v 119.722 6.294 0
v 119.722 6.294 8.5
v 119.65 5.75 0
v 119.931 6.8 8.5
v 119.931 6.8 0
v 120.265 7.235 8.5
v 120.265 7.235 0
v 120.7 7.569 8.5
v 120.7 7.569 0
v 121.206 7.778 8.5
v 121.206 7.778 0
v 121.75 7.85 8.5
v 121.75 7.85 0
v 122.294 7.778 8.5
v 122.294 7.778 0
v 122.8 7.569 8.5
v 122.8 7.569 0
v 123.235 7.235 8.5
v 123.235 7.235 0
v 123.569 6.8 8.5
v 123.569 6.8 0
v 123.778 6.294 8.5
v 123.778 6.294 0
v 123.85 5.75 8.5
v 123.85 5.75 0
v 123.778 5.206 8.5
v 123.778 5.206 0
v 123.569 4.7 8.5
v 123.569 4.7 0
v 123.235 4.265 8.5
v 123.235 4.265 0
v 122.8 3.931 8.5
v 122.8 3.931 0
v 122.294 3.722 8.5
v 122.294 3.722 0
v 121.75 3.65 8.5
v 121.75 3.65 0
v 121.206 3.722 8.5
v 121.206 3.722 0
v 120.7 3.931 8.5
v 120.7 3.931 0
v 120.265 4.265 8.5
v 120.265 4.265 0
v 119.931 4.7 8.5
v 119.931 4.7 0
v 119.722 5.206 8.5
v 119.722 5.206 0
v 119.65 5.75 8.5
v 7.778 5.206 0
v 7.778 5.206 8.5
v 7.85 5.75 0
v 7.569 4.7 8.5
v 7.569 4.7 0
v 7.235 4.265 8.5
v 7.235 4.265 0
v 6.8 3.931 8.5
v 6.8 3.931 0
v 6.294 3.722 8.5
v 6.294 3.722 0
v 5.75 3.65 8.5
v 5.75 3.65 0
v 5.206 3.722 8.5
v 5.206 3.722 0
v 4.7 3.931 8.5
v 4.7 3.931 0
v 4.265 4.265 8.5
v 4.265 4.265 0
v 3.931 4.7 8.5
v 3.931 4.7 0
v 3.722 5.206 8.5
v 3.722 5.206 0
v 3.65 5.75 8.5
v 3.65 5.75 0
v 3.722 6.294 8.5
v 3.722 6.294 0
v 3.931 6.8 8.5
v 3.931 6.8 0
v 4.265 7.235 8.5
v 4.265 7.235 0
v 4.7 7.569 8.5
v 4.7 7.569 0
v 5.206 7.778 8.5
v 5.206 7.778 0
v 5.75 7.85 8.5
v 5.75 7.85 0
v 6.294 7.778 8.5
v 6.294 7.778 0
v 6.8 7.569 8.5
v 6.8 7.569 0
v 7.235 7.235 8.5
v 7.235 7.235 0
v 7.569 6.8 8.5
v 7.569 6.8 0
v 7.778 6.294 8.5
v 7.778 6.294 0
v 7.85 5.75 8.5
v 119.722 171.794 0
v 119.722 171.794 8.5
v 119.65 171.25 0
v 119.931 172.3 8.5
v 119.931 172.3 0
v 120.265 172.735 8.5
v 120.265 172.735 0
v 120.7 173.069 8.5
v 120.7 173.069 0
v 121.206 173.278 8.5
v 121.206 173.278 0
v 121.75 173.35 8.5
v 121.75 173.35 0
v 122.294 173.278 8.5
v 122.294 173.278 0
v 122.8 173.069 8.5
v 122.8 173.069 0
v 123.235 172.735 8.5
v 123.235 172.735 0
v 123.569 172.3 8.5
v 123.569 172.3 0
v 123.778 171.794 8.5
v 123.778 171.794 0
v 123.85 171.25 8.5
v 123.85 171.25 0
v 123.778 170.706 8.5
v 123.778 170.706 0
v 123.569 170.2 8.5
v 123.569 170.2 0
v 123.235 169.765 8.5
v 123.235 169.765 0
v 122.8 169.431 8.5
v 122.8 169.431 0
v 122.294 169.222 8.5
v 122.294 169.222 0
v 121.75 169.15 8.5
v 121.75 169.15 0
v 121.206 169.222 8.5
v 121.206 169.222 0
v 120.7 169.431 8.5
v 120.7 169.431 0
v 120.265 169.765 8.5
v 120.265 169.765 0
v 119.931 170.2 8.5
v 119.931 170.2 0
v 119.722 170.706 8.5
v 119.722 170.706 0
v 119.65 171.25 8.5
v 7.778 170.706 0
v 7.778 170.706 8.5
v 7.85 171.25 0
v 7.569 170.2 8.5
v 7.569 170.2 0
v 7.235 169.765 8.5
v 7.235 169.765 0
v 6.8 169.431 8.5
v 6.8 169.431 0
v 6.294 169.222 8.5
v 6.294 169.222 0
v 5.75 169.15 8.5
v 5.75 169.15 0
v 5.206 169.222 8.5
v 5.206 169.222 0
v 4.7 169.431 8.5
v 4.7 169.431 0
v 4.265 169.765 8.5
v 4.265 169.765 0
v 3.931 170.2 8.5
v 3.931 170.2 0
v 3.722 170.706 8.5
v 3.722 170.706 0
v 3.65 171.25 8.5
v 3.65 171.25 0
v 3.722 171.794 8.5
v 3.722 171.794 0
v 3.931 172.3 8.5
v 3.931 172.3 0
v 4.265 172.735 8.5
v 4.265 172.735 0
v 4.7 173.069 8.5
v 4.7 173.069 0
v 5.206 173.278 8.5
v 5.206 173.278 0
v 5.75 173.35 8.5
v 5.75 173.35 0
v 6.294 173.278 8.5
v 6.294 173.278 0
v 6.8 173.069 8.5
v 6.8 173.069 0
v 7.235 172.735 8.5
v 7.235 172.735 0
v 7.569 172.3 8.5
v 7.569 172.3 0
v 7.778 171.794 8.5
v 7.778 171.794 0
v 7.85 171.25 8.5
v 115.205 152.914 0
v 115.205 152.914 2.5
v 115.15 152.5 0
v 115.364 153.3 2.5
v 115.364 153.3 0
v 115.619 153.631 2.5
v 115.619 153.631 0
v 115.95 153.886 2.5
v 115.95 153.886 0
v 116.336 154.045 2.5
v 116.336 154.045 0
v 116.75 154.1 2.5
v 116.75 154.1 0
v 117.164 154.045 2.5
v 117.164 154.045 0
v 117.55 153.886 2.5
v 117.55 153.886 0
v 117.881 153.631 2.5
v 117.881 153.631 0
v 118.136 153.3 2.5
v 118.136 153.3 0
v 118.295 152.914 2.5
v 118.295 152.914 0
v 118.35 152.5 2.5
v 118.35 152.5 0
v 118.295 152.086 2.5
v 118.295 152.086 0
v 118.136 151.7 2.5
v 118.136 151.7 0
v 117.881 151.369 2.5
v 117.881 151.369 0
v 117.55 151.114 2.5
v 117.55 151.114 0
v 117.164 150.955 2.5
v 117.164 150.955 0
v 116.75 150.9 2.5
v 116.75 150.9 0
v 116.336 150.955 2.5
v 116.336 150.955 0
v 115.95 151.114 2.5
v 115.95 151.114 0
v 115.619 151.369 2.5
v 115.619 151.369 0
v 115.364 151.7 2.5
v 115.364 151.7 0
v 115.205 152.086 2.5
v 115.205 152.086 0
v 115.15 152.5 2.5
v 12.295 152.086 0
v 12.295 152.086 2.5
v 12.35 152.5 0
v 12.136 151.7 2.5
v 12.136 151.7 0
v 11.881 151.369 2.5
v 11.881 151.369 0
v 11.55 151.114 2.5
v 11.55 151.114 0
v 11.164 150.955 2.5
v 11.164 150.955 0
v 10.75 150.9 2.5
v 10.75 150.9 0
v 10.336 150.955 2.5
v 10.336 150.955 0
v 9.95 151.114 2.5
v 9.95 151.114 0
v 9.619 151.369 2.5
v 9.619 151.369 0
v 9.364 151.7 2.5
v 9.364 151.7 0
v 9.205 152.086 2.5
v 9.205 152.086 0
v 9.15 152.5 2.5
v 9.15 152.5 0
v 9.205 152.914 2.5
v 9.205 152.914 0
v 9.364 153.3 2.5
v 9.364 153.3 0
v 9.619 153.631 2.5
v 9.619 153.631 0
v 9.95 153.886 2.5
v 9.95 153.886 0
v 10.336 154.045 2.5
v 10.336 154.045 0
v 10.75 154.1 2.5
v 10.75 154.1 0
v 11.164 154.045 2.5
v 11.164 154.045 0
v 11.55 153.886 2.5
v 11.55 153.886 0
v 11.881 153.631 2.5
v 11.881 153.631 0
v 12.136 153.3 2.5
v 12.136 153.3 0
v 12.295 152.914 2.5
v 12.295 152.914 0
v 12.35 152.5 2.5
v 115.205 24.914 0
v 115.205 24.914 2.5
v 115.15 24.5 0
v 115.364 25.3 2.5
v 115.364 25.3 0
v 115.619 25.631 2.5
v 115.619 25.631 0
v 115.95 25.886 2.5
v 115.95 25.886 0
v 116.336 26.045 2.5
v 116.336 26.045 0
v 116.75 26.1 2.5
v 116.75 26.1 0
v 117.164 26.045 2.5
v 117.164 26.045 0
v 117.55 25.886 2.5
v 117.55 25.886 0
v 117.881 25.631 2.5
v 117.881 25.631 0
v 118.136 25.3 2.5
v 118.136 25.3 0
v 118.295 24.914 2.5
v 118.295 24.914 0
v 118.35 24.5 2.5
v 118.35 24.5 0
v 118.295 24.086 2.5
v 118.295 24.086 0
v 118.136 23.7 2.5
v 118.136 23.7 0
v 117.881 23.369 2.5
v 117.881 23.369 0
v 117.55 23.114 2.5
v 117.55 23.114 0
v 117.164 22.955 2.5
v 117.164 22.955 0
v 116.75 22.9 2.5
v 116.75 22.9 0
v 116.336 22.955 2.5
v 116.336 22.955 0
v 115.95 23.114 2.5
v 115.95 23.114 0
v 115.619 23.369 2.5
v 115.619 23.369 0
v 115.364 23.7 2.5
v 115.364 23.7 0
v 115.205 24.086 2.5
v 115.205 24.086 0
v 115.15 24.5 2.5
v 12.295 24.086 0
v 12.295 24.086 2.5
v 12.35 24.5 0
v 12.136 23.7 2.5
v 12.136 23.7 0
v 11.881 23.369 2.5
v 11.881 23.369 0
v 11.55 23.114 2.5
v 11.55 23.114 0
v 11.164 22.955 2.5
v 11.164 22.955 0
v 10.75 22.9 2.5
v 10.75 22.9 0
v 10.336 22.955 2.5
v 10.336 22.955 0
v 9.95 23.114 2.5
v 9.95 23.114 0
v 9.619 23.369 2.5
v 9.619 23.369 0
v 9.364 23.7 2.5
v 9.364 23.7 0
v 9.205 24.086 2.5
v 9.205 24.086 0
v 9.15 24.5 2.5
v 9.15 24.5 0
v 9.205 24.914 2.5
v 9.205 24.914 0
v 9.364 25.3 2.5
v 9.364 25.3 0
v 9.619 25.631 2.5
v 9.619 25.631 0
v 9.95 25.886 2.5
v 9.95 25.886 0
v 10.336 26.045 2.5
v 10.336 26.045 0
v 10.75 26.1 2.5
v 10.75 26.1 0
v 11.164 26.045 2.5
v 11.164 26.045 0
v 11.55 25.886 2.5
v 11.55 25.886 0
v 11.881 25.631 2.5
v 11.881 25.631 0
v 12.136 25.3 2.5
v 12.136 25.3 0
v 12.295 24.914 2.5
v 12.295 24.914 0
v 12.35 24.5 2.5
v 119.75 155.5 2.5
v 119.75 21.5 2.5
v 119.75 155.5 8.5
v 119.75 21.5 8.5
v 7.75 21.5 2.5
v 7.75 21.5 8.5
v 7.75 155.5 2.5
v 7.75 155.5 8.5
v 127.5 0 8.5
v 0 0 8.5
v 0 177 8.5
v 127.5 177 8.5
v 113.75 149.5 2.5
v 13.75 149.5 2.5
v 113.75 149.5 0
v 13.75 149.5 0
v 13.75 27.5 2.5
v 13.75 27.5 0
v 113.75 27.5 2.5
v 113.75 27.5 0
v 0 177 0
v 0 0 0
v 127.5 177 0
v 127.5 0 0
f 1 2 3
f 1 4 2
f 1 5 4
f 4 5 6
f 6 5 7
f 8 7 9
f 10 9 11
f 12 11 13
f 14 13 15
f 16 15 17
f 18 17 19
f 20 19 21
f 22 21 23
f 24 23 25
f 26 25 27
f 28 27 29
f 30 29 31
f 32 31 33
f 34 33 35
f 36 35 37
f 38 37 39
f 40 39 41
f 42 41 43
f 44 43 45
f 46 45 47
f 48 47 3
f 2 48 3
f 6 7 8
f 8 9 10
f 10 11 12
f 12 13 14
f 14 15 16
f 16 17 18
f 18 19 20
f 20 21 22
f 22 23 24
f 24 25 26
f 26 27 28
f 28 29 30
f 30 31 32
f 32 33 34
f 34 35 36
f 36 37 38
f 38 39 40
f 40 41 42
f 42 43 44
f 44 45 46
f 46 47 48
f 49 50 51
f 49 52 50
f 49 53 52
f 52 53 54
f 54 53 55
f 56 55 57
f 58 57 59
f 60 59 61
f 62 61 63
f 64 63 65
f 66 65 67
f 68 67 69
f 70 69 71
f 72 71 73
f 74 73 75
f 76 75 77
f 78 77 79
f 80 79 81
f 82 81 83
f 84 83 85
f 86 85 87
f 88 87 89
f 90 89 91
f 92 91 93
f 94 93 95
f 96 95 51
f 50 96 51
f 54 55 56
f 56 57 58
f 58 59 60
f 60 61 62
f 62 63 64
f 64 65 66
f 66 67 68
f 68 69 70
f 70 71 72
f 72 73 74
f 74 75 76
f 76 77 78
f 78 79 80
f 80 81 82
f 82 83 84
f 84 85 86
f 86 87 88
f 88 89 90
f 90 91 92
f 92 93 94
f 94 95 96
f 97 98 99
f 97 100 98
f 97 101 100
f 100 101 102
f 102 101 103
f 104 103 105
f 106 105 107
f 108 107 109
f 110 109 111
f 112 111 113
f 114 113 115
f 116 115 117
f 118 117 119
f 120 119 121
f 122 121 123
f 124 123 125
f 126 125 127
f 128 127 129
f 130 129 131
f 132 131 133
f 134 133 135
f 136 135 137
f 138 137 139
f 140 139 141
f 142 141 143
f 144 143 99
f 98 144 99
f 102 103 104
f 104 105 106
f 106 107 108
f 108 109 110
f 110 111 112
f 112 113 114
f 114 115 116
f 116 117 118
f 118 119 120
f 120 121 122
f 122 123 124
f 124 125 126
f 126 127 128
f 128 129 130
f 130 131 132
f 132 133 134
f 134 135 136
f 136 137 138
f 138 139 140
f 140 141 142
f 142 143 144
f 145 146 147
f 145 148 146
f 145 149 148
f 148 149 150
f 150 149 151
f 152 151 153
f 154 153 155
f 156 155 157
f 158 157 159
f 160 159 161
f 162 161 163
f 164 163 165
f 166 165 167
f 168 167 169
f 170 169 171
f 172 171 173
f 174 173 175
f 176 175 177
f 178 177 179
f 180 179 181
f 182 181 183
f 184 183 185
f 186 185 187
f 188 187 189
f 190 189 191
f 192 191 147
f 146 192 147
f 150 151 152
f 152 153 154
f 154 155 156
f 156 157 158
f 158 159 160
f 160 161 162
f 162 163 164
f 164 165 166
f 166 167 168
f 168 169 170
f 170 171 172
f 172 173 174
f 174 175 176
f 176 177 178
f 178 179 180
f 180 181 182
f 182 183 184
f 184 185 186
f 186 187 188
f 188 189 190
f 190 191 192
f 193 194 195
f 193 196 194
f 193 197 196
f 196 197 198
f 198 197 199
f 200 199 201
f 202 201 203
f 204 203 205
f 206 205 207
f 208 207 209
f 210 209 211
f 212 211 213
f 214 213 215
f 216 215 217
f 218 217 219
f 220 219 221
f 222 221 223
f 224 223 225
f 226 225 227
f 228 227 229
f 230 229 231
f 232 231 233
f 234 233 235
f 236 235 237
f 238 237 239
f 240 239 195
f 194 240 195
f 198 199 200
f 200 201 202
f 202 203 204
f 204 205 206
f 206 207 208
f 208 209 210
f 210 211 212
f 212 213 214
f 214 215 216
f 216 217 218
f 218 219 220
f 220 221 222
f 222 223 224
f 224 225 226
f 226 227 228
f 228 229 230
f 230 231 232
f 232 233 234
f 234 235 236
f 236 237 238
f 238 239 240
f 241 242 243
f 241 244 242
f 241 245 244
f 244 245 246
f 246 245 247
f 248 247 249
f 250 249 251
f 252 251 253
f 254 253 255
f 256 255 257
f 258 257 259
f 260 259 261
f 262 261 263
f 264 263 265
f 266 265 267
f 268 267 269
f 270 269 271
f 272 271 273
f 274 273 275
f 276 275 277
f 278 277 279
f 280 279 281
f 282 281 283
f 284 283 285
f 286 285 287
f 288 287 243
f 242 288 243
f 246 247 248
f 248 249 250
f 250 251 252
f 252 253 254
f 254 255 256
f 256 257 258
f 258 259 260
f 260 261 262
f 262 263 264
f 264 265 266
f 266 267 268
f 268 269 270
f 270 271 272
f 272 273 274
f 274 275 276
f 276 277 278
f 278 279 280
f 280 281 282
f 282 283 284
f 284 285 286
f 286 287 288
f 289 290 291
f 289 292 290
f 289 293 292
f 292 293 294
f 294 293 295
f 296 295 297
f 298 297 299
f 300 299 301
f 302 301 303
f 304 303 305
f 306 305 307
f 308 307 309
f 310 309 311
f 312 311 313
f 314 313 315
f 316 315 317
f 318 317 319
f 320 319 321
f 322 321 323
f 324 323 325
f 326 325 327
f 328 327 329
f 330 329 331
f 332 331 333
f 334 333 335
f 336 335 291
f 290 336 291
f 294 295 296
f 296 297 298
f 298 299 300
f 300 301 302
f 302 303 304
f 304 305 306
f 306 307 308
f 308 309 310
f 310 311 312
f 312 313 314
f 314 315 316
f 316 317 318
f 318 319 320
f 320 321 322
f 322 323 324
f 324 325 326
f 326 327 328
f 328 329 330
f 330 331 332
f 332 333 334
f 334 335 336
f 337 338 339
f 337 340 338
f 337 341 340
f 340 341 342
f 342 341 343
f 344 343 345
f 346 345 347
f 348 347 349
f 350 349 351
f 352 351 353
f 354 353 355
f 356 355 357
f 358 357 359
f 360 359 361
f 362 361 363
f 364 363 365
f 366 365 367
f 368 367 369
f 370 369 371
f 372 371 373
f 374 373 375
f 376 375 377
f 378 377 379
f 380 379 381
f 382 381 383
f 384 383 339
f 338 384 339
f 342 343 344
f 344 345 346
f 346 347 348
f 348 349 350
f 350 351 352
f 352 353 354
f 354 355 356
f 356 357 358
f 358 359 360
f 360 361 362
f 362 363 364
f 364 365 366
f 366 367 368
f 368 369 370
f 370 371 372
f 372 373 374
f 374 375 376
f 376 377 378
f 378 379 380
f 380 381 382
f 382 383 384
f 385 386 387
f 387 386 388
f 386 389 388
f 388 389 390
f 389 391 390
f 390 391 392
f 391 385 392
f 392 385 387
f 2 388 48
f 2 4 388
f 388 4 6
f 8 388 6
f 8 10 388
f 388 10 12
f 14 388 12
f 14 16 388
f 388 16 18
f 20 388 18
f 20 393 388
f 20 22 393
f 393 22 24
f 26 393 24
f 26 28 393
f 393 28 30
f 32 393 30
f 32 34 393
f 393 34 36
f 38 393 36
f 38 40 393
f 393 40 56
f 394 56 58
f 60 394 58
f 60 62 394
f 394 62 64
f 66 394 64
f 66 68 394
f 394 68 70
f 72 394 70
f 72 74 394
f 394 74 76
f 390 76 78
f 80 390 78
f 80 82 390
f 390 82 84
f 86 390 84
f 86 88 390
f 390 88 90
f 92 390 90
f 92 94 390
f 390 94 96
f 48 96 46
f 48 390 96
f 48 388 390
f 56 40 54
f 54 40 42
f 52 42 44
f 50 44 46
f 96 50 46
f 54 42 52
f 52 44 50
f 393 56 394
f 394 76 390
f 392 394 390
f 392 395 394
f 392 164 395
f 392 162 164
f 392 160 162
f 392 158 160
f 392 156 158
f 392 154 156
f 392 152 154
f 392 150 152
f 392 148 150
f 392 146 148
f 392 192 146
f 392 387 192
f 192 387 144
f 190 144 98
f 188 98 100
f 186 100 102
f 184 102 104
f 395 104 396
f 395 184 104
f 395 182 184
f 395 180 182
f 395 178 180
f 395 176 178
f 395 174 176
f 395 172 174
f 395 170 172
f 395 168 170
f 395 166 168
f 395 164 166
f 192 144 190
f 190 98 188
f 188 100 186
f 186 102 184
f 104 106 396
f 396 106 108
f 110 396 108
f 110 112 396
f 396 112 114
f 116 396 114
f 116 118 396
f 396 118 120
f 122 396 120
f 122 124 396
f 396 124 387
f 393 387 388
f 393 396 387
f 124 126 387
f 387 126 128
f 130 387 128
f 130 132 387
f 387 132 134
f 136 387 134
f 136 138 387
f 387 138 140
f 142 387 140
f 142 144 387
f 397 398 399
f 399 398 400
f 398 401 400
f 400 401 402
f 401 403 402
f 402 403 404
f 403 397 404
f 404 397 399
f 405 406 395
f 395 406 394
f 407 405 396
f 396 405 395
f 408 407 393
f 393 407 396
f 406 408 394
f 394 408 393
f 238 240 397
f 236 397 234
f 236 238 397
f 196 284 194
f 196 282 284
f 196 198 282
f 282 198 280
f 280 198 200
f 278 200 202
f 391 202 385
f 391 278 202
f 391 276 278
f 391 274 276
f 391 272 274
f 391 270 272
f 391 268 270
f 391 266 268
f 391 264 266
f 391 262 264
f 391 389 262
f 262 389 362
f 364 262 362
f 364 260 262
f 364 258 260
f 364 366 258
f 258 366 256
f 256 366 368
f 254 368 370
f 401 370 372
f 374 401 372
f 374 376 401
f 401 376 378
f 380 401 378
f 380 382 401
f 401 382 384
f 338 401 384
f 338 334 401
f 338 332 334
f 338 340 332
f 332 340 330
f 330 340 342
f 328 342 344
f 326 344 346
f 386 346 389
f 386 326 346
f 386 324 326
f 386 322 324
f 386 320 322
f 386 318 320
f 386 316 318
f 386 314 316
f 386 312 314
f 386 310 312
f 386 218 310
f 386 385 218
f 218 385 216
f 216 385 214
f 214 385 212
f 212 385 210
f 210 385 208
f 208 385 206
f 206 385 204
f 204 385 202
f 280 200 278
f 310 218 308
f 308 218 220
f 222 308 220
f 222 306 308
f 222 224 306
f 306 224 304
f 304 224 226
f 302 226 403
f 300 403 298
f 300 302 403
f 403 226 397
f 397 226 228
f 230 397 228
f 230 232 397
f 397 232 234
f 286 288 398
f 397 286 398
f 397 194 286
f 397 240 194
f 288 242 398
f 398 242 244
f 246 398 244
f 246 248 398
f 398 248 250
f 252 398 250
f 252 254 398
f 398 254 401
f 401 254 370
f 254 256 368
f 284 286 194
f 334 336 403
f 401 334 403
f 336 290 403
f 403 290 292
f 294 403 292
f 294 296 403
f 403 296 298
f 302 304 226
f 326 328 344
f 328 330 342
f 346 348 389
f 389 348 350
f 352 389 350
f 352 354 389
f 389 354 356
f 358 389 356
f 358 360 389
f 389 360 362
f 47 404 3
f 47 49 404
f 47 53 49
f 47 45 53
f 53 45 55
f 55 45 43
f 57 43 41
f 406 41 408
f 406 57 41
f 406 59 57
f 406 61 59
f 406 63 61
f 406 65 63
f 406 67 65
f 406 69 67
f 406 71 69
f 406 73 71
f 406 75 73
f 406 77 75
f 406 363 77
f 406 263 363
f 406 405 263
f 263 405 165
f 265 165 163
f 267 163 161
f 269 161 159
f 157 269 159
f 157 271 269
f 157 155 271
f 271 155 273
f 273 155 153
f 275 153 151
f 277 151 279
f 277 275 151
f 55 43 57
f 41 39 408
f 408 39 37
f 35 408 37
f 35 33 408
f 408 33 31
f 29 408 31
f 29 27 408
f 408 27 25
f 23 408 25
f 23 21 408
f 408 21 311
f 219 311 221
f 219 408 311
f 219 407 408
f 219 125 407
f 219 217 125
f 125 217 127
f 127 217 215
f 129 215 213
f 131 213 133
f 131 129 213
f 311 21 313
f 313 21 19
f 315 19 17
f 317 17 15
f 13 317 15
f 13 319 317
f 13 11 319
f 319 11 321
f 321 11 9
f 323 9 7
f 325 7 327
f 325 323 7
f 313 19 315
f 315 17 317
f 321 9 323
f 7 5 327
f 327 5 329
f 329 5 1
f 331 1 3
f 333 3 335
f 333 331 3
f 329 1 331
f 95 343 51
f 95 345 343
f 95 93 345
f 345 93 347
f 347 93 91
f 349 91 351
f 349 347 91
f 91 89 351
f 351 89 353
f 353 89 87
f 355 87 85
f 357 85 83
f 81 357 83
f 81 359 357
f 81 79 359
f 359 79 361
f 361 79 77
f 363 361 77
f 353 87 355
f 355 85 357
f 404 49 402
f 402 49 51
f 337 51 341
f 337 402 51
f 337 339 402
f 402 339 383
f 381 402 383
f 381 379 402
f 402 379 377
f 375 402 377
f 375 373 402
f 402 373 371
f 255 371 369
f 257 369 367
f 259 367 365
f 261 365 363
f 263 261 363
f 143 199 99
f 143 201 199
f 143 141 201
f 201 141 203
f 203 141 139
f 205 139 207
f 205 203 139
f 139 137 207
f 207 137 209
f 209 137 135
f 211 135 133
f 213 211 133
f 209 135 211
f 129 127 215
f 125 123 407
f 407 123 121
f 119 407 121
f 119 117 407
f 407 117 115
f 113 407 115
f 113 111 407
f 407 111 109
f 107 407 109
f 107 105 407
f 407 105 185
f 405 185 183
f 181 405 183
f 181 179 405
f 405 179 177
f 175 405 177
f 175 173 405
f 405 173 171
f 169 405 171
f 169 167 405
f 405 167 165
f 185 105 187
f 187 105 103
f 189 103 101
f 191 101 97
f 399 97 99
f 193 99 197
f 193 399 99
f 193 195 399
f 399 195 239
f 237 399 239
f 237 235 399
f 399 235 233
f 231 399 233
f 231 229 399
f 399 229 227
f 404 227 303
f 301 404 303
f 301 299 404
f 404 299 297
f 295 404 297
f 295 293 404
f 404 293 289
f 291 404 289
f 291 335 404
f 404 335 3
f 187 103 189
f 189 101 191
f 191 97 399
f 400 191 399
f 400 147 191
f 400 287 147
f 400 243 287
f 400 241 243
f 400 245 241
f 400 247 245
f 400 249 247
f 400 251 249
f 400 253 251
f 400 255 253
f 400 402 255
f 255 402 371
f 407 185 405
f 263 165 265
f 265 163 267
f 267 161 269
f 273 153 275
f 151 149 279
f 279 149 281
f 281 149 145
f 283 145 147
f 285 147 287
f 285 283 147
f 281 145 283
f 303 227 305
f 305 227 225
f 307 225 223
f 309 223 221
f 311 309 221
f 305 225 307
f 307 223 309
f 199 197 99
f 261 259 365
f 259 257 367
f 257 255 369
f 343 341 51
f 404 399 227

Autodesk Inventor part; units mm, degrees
ref_plane "YZ Plane" through (0, 0, 0) normal (1, 0, 0) x (0, 1, 0)
ref_plane "XZ Plane" through (0, 0, 0) normal (0, 1, 0) x (-1, 0, 0)
ref_plane "XY Plane" through (0, 0, 0) normal (0, 0, 1) x (1, 0, 0)
sketch "Boceto1" plane through (0, 0, 0) normal (0, 0, 1) x (1, 0, 0)
  line L0 (0, 0) -> (127.5, 0)
  line L1 (127.5, 0) -> (127.5, 177)
  line L2 (127.5, 177) -> (0, 177)
  line L3 (0, 177) -> (0, 0)
  dimension "d32" = 127.5
  dimension "d33" = 177
extrude "Extrusión1" add sketch "Boceto1" along normal blind 2.5
sketch "Boceto2" plane through (0, 0, 2.5) normal (0, 0, 1) x (1, 0, 0)
  line L0 (127.5, 0) -> (127.5, 27.5)
  line L1 (127.5, 0) -> (127.5, 177) projected
  line L2 (127.5, 0) -> (155, 0) construction
  line L3 (127.5, 27.5) -> (113.75, 27.5)
  line L4 (0, 0) -> (127.5, 0) projected
  line L5 (113.75, 27.5) -> (13.75, 27.5)
  line L6 (13.75, 27.5) -> (13.75, 149.5)
  line L7 (13.75, 149.5) -> (113.75, 149.5)
  line L8 (113.75, 149.5) -> (113.75, 27.5)
  dimension "d36" = 27.5
  dimension "d37" = 90
  dimension "d38" = 13.75
  dimension "d39" = 90
  dimension "d40" = 100
  dimension "d41" = 122
extrude "Extrusión2" cut sketch "Boceto2" against normal blind 2.5
sketch "Boceto3" plane through (0, 0, 2.5) normal (0, 0, 1) x (1, 0, 0)
  line L0 (13.75, 149.5) -> (7.75, 149.5)
  line L1 (7.75, 149.5) -> (7.75, 155.5)
  line L2 (113.75, 27.5) -> (113.75, 21.5)
  line L3 (113.75, 27.5) -> (119.75, 27.5) construction
  line L4 (113.75, 21.5) -> (119.75, 21.5)
  line L5 (7.75, 155.5) -> (119.75, 155.5)
  line L6 (119.75, 155.5) -> (119.75, 21.5)
  line L7 (119.75, 21.5) -> (7.75, 21.5)
  line L8 (7.75, 21.5) -> (7.75, 155.5)
  line L9 (0, 177) -> (127.5, 177)
  line L10 (127.5, 177) -> (127.5, 0)
  line L11 (127.5, 0) -> (0, 0)
  line L12 (0, 0) -> (0, 177)
  dimension "d44" = 6
  dimension "d45" = 6
  dimension "d46" = 90
  dimension "d47" = 6
  dimension "d48" = 90
  dimension "d49" = 6
  dimension "d50" = 90
extrude "Extrusión3" add sketch "Boceto3" along normal blind 6
sketch "Boceto6" plane through (0, 0, 8.5) normal (0, 0, 1) x (1, 0, 0)
  line L0 (0, 0) -> (0, 88.5)
  line L1 (0, 177) -> (0, 0) projected
  line L2 (0, 0) -> (88.5, 0) construction
  line L3 (0, 88.5) -> (127.5, 88.5)
  dimension "d73" = 88.5
  dimension "d74" = 90
  dimension "d75" = 127.5
  dimension "d76" = 90
ref_plane "Plano de trabajo1" through (0, 88.5, 8.5) normal (0, -1, 0) x (1, 0, 0)
sketch "Boceto7" plane through (0, 0, 8.5) normal (0, 0, 1) x (1, 0, 0)
  line L0 (0, 0) -> (63.75, 0)
  line L1 (0, 0) -> (127.5, 0) projected
  line L2 (63.75, 0) -> (63.75, 177)
  line L3 (127.5, 177) -> (0, 177) projected
  line L4 (63.75, 0) -> (240.75, 0) construction
  dimension "d78" = 177
  dimension "d79" = 90
ref_plane "Plano de trabajo2" through (63.75, 0, 8.5) normal (1, 0, 0) x (0, 1, 0)
sketch "Boceto8" plane through (0, 0, 2.5) normal (0, 0, 1) x (1, 0, 0)
  line L0 (13.75, 27.5) -> (7.75, 27.5)
  line L1 (7.75, 27.5) -> (7.75, 21.5)
  line L2 (7.75, 21.5) -> (13.75, 21.5)
  line L3 (13.75, 21.5) -> (13.75, 27.5)
  line L4 (13.75, 21.5) -> (7.75, 27.5)
  line L5 (13.75, 27.5) -> (7.75, 21.5)
  circle A0 centre (10.75, 24.5) radius 1.6
  point P0 (0, 0)
  dimension "d81" = 6
  dimension "d82" = 6
  dimension "d83" = 3.2
extrude "Extrusión4" cut sketch "Boceto8" against normal blind 4 contours A0 L4 L5 | L5 L4 A0 | L4 L5 A0 | A0 L5 L4
mirror "Simetría1" about plane through (63.75, 0, 8.5) normal (1, 0, 0) of "Extrusión4"
mirror "Simetría2" about plane through (0, 88.5, 8.5) normal (0, -1, 0) of "Extrusión4", "Simetría1"
sketch "Boceto9" plane through (0, 0, 8.5) normal (0, 0, 1) x (1, 0, 0)
  line L0 (0, 177) -> (11.5, 177)
  line L1 (11.5, 177) -> (11.5, 165.5)
  line L2 (11.5, 165.5) -> (0, 165.5)
  line L3 (0, 165.5) -> (0, 177)
  line L4 (0, 177) -> (11.5, 165.5)
  line L5 (0, 165.5) -> (11.5, 177)
  circle A0 centre (5.75, 171.25) radius 2.1
  point P0 (0, 0)
  dimension "d86" = 11.5
  dimension "d87" = 11.5
  dimension "d88" = 4.2
extrude "Extrusión5" cut sketch "Boceto9" against normal blind 10 contours A0 L5 L4 | L4 L5 A0 | A0 L4 L5 | L5 L4 A0
mirror "Simetría3" about plane through (63.75, 0, 8.5) normal (1, 0, 0) of "Extrusión5"
mirror "Simetría4" about plane through (0, 88.5, 8.5) normal (0, -1, 0) of "Extrusión5", "Simetría3"
properties part number "transillum_diffusor_partA_v3"
